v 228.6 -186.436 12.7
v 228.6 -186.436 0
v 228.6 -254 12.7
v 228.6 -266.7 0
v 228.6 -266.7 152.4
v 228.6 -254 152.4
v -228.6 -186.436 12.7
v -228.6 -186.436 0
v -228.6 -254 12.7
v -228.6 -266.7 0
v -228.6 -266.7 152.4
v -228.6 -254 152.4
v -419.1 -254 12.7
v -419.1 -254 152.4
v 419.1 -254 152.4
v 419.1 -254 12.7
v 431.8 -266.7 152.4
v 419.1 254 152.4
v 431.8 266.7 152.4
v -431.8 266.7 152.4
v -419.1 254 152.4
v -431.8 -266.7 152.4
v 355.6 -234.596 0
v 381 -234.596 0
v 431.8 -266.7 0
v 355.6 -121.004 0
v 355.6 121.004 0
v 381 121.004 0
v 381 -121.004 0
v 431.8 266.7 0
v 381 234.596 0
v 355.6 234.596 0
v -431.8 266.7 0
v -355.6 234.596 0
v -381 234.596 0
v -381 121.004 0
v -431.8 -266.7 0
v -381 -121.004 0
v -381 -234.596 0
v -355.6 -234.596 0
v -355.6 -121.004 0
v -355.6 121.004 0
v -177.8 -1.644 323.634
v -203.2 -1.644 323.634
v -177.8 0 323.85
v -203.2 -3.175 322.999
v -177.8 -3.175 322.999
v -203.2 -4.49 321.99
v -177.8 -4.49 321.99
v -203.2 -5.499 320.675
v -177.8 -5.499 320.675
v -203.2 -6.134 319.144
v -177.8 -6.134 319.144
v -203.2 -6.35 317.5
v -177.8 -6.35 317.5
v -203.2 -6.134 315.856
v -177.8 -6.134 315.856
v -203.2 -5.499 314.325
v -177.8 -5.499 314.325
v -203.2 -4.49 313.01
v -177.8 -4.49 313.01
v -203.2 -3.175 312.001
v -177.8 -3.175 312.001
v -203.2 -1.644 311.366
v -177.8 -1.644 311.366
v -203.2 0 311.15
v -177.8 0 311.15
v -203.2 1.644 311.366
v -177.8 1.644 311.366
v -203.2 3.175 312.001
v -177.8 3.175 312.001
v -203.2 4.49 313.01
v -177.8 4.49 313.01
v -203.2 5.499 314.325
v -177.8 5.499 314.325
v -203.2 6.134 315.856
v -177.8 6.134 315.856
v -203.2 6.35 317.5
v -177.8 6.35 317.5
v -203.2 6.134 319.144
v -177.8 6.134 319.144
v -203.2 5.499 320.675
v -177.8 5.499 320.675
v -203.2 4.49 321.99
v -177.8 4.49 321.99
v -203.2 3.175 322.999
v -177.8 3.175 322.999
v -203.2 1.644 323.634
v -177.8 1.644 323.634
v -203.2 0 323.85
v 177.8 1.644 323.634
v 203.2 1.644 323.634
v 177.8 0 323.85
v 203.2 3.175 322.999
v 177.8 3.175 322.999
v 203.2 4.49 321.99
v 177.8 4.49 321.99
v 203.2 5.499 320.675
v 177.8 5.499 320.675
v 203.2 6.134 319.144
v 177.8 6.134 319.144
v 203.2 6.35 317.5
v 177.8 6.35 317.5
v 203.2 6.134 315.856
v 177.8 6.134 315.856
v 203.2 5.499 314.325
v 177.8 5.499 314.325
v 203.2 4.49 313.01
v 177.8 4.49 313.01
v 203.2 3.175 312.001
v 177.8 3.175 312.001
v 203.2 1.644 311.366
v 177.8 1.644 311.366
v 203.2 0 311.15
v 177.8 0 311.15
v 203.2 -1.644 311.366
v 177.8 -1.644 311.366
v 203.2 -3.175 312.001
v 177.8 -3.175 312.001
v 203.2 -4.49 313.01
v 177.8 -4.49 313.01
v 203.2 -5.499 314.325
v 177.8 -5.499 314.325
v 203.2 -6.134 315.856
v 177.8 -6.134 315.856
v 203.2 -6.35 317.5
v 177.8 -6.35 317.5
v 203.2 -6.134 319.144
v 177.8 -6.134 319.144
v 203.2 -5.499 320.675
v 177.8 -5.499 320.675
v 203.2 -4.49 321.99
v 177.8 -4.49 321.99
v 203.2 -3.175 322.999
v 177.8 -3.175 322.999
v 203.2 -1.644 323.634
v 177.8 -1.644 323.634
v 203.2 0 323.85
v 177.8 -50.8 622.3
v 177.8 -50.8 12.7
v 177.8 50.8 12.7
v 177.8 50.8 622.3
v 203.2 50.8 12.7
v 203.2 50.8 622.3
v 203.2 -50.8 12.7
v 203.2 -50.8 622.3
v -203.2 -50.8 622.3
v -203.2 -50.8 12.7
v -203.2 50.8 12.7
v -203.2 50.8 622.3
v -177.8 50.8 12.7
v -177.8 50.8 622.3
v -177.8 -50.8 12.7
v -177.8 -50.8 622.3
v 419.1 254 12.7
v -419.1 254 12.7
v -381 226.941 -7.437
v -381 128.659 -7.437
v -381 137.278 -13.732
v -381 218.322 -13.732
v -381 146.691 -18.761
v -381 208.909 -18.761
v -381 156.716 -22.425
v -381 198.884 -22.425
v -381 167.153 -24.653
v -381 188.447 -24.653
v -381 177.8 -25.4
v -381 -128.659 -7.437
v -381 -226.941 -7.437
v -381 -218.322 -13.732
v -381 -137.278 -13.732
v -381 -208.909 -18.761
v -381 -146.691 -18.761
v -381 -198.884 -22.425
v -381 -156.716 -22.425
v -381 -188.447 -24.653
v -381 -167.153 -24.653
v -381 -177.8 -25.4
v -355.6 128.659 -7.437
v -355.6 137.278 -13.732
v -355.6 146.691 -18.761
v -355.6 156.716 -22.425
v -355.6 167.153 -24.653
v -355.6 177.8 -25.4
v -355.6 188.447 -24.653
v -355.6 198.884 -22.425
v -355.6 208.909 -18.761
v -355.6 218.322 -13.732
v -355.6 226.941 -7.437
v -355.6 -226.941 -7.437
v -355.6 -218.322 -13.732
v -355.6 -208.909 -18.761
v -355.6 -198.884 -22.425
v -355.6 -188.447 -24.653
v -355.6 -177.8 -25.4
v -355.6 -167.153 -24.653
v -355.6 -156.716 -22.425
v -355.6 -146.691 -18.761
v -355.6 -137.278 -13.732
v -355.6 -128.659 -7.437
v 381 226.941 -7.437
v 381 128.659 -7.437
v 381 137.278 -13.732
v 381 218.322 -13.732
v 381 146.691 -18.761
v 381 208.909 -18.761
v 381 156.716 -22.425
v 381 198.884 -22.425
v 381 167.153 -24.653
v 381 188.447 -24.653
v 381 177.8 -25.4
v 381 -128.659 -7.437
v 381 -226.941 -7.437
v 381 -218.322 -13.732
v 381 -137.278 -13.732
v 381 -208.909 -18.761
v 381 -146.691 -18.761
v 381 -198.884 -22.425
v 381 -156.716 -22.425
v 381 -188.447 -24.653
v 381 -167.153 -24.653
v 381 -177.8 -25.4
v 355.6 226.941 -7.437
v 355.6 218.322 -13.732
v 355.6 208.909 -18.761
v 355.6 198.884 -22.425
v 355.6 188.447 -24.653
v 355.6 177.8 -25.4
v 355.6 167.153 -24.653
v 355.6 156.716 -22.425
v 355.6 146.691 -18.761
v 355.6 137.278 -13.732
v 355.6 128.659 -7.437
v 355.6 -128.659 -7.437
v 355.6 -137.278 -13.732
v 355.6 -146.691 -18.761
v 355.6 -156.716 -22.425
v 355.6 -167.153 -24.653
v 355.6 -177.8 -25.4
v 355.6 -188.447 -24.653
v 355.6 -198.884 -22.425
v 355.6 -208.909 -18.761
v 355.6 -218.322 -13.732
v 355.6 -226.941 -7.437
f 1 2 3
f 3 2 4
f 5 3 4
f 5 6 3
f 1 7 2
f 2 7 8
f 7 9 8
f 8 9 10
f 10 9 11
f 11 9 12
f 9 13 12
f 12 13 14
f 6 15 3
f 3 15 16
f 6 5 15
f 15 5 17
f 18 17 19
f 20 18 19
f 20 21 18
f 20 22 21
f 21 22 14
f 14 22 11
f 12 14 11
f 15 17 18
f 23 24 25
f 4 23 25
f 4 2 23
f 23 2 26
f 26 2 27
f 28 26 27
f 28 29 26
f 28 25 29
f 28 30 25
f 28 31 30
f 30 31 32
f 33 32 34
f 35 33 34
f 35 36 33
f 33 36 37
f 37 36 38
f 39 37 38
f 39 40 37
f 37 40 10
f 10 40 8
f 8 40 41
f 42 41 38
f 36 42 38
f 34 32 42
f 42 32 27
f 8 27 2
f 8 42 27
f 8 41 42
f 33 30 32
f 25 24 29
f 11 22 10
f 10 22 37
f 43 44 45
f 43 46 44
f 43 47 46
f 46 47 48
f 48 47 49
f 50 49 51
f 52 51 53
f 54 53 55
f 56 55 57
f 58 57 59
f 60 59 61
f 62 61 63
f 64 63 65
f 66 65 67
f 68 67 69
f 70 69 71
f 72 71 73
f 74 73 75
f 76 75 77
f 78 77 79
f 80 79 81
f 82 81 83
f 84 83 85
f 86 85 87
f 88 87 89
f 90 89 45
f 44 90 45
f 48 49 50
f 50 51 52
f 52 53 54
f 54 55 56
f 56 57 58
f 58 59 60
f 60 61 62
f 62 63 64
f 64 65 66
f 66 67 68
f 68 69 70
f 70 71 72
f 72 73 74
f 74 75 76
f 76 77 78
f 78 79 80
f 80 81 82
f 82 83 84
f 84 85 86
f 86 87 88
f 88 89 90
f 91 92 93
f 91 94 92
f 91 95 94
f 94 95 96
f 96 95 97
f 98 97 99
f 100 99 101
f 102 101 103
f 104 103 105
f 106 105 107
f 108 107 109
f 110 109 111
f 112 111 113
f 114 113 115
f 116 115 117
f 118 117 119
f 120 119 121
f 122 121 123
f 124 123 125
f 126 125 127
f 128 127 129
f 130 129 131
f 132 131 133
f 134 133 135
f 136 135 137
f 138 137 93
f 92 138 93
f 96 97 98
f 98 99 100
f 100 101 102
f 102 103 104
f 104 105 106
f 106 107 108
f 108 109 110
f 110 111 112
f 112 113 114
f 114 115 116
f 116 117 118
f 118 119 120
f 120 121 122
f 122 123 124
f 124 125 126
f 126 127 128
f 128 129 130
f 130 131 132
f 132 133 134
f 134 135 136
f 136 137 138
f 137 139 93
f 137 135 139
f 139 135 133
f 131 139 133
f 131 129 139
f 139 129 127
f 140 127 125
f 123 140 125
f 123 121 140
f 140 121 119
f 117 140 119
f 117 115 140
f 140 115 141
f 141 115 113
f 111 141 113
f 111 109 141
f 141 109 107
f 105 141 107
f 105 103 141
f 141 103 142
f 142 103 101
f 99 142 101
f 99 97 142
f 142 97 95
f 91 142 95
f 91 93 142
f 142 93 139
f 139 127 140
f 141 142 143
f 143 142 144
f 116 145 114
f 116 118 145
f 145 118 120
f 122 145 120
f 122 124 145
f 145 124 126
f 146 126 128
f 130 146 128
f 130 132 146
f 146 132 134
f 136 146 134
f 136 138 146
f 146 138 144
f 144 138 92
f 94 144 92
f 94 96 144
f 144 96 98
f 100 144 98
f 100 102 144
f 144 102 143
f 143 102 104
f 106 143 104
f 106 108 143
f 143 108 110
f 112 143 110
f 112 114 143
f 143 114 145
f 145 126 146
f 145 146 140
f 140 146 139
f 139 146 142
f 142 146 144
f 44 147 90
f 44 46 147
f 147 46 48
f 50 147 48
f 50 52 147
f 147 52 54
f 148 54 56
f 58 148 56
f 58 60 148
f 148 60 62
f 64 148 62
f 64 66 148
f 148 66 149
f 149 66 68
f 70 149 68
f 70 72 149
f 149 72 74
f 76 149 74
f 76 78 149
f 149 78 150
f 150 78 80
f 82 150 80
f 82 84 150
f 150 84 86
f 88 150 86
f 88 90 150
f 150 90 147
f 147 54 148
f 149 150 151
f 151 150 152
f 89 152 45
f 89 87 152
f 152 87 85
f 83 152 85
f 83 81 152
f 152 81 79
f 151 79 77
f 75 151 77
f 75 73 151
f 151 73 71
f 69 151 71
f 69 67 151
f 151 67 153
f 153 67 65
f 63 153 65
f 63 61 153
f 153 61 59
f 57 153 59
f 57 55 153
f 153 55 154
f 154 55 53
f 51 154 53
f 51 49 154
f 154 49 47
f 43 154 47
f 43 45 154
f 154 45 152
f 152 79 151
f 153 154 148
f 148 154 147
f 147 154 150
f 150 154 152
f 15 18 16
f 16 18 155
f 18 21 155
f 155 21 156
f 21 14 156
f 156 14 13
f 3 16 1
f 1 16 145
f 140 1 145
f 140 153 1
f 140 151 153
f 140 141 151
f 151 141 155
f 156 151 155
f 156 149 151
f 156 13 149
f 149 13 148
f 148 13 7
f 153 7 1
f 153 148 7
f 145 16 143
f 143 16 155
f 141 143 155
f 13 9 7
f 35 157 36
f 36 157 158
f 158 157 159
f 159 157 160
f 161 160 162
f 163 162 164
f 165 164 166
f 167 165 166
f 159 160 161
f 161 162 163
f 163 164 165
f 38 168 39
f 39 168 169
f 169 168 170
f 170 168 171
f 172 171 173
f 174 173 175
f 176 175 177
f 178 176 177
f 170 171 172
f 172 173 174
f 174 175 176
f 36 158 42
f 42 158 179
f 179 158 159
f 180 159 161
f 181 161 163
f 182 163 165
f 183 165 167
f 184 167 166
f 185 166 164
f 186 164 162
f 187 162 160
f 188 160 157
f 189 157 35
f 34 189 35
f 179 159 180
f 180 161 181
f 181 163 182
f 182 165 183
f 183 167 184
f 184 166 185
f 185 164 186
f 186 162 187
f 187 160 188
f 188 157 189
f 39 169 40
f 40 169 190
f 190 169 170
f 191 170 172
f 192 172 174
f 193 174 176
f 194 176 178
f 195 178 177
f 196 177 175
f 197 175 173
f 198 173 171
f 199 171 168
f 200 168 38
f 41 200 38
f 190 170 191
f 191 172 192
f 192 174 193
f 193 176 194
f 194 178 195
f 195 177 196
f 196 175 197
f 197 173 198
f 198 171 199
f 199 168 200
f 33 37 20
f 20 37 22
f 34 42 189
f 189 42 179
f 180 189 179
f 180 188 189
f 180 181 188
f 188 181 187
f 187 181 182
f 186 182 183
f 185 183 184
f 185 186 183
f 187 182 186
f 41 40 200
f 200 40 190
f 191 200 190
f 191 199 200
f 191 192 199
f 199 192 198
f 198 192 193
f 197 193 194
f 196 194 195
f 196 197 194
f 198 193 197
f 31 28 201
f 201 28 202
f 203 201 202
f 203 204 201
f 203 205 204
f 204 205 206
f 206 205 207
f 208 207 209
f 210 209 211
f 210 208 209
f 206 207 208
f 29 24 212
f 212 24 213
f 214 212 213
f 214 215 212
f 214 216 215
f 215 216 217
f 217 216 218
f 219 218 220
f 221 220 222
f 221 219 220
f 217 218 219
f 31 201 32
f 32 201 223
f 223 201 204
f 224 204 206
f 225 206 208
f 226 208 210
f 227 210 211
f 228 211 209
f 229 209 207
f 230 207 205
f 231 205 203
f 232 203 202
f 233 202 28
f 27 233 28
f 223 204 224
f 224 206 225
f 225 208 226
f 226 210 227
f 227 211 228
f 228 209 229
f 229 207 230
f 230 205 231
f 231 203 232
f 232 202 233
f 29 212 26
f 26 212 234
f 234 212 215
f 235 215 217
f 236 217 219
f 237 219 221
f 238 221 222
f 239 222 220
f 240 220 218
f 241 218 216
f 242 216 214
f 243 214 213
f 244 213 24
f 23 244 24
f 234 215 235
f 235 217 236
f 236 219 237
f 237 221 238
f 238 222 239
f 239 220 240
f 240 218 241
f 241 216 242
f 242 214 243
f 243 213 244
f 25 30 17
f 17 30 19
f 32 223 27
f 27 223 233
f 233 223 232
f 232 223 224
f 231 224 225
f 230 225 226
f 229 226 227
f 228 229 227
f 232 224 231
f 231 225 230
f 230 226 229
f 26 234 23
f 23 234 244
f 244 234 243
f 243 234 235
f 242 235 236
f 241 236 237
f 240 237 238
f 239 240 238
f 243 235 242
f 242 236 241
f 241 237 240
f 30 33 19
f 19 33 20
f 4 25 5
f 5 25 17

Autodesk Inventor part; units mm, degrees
ref_plane "YZ Plane" through (0, 0, 0) normal (1, 0, 0) x (0, 1, 0)
ref_plane "XZ Plane" through (0, 0, 0) normal (0, 1, 0) x (-1, 0, 0)
ref_plane "XY Plane" through (0, 0, 0) normal (0, 0, 1) x (1, 0, 0)
sketch "Sketch1" plane through (0, 0, 0) normal (0, 0, 1) x (1, 0, 0)
  line L0 (-431.8, -266.7) -> (431.8, -266.7)
  line L1 (431.8, -266.7) -> (431.8, 266.7)
  line L2 (431.8, 266.7) -> (-431.8, 266.7)
  line L3 (-431.8, 266.7) -> (-431.8, -266.7)
  line L4 (-431.8, -266.7) -> (431.8, 266.7) construction
  line L5 (431.8, -266.7) -> (-431.8, 266.7) construction
  point P0 (0, 0)
  dimension "d0" = 863.6
  dimension "d1" = 533.4
extrude "Extrusion1" add sketch "Sketch1" along normal blind 152.4
sketch "Sketch2" plane through (431.8, -266.7, 0) normal (1, 0, 0) x (0, 0, -1)
  line L0 (0, 0) -> (0, 533.4) projected
  line L1 (0, 0) -> (-152.4, 0) projected
  arc A0 (0, 387.7039) -> (0, 501.2961) centre (-50.8, 444.5) ccw
  line L2 (0, 266.7) -> (-335.0591, 266.7) construction
  line L3 (0, 501.2961) -> (0, 387.7039)
  arc A1 (0, 32.1039) -> (0, 145.6961) centre (-50.8, 88.9) ccw
  line L4 (0, 32.1039) -> (0, 145.6961)
extrude "Extrusion2" add sketch "Sketch2" against normal blind 76.2
extrude "Extrusion3" cut sketch "Sketch2" against normal blind 50.8
sketch "Sketch3" plane through (-431.8, -266.7, 0) normal (-1, 0, 0) x (0, 0, 1)
  line L0 (0, 501.2961) -> (0, 387.7039) projected
  arc A0 (0, 501.2961) -> (0, 387.7039) centre (50.8, 444.5) ccw projected
  line L1 (0, 145.6961) -> (0, 32.1039) projected
  arc A1 (0, 145.6961) -> (0, 32.1039) centre (50.8, 88.9) ccw projected
  point P0 (0, 266.7)
extrude "Extrusion4" add sketch "Sketch3" against normal blind 76.2
extrude "Extrusion5" cut sketch "Sketch3" against normal blind 50.8
sketch "Sketch4" plane through (0, 0, 152.4) normal (0, 0, 1) x (1, 0, 0)
  line L0 (-419.1, -254) -> (419.1, -254)
  line L1 (419.1, -254) -> (419.1, 254)
  line L2 (419.1, 254) -> (-419.1, 254)
  line L3 (-419.1, 254) -> (-419.1, -254)
  line L4 (-419.1, -254) -> (419.1, 254) construction
  line L5 (419.1, -254) -> (-419.1, 254) construction
  point P0 (0, 0)
  dimension "d14" = 838.2
  dimension "d15" = 508
extrude "Extrusion6" cut sketch "Sketch4" against normal blind 139.7
sketch "Sketch5" plane through (0, 0, 12.7) normal (0, 0, 1) x (1, 0, 0)
  line L0 (203.2, -50.8) -> (177.8, -50.8)
  line L1 (177.8, -50.8) -> (177.8, 50.8)
  line L2 (177.8, 50.8) -> (203.2, 50.8)
  line L3 (203.2, 50.8) -> (203.2, -50.8)
  line L4 (203.2, -50.8) -> (177.8, 50.8) construction
  line L5 (177.8, -50.8) -> (203.2, 50.8) construction
  line L6 (-203.2, -50.8) -> (-177.8, -50.8)
  line L7 (-177.8, -50.8) -> (-177.8, 50.8)
  line L8 (-177.8, 50.8) -> (-203.2, 50.8)
  line L9 (-203.2, 50.8) -> (-203.2, -50.8)
  point P0 (0, 0)
  dimension "d19" = 25.4
  dimension "d20" = 101.6
extrude "Extrusion7" add sketch "Sketch5" along normal blind 609.6
sketch "Sketch6" plane through (203.2, -50.8, 12.7) normal (1, 0, 0) x (0, 0, -1)
  line L0 (-609.6, 0) -> (-609.6, 101.6) projected
  line L1 (0, 0) -> (-609.6, 0) projected
  line L2 (-609.6, 50.8) -> (-304.8, 50.8)
  point P0 (12.7, 50.8)
  dimension "d23" = 304.8
hole "Hole1" at (203.2, 0, 317.5) direction (-1, 0, 0) diameter 12.7 end through all
sketch "Sketch7" plane through (0, 0, 152.4) normal (0, 0, 1) x (1, 0, 0)
  line L0 (-431.8, -266.7) -> (431.8, -266.7) projected
  line L1 (0, -266.7) -> (228.6, -266.7)
  line L2 (228.6, -266.7) -> (228.6, -186.436)
  line L3 (228.6, -186.436) -> (-228.6, -186.436)
  line L4 (-228.6, -186.436) -> (-228.6, -266.7)
  line L5 (0, -266.7) -> (-228.6, -266.7)
  point P0 (0, 0)
  dimension "d31" = 228.6
  dimension "d32" = 80.264
  dimension "d33" = 457.2
extrude "Extrusion8" cut sketch "Sketch7" against normal through all
properties part number "Base"
